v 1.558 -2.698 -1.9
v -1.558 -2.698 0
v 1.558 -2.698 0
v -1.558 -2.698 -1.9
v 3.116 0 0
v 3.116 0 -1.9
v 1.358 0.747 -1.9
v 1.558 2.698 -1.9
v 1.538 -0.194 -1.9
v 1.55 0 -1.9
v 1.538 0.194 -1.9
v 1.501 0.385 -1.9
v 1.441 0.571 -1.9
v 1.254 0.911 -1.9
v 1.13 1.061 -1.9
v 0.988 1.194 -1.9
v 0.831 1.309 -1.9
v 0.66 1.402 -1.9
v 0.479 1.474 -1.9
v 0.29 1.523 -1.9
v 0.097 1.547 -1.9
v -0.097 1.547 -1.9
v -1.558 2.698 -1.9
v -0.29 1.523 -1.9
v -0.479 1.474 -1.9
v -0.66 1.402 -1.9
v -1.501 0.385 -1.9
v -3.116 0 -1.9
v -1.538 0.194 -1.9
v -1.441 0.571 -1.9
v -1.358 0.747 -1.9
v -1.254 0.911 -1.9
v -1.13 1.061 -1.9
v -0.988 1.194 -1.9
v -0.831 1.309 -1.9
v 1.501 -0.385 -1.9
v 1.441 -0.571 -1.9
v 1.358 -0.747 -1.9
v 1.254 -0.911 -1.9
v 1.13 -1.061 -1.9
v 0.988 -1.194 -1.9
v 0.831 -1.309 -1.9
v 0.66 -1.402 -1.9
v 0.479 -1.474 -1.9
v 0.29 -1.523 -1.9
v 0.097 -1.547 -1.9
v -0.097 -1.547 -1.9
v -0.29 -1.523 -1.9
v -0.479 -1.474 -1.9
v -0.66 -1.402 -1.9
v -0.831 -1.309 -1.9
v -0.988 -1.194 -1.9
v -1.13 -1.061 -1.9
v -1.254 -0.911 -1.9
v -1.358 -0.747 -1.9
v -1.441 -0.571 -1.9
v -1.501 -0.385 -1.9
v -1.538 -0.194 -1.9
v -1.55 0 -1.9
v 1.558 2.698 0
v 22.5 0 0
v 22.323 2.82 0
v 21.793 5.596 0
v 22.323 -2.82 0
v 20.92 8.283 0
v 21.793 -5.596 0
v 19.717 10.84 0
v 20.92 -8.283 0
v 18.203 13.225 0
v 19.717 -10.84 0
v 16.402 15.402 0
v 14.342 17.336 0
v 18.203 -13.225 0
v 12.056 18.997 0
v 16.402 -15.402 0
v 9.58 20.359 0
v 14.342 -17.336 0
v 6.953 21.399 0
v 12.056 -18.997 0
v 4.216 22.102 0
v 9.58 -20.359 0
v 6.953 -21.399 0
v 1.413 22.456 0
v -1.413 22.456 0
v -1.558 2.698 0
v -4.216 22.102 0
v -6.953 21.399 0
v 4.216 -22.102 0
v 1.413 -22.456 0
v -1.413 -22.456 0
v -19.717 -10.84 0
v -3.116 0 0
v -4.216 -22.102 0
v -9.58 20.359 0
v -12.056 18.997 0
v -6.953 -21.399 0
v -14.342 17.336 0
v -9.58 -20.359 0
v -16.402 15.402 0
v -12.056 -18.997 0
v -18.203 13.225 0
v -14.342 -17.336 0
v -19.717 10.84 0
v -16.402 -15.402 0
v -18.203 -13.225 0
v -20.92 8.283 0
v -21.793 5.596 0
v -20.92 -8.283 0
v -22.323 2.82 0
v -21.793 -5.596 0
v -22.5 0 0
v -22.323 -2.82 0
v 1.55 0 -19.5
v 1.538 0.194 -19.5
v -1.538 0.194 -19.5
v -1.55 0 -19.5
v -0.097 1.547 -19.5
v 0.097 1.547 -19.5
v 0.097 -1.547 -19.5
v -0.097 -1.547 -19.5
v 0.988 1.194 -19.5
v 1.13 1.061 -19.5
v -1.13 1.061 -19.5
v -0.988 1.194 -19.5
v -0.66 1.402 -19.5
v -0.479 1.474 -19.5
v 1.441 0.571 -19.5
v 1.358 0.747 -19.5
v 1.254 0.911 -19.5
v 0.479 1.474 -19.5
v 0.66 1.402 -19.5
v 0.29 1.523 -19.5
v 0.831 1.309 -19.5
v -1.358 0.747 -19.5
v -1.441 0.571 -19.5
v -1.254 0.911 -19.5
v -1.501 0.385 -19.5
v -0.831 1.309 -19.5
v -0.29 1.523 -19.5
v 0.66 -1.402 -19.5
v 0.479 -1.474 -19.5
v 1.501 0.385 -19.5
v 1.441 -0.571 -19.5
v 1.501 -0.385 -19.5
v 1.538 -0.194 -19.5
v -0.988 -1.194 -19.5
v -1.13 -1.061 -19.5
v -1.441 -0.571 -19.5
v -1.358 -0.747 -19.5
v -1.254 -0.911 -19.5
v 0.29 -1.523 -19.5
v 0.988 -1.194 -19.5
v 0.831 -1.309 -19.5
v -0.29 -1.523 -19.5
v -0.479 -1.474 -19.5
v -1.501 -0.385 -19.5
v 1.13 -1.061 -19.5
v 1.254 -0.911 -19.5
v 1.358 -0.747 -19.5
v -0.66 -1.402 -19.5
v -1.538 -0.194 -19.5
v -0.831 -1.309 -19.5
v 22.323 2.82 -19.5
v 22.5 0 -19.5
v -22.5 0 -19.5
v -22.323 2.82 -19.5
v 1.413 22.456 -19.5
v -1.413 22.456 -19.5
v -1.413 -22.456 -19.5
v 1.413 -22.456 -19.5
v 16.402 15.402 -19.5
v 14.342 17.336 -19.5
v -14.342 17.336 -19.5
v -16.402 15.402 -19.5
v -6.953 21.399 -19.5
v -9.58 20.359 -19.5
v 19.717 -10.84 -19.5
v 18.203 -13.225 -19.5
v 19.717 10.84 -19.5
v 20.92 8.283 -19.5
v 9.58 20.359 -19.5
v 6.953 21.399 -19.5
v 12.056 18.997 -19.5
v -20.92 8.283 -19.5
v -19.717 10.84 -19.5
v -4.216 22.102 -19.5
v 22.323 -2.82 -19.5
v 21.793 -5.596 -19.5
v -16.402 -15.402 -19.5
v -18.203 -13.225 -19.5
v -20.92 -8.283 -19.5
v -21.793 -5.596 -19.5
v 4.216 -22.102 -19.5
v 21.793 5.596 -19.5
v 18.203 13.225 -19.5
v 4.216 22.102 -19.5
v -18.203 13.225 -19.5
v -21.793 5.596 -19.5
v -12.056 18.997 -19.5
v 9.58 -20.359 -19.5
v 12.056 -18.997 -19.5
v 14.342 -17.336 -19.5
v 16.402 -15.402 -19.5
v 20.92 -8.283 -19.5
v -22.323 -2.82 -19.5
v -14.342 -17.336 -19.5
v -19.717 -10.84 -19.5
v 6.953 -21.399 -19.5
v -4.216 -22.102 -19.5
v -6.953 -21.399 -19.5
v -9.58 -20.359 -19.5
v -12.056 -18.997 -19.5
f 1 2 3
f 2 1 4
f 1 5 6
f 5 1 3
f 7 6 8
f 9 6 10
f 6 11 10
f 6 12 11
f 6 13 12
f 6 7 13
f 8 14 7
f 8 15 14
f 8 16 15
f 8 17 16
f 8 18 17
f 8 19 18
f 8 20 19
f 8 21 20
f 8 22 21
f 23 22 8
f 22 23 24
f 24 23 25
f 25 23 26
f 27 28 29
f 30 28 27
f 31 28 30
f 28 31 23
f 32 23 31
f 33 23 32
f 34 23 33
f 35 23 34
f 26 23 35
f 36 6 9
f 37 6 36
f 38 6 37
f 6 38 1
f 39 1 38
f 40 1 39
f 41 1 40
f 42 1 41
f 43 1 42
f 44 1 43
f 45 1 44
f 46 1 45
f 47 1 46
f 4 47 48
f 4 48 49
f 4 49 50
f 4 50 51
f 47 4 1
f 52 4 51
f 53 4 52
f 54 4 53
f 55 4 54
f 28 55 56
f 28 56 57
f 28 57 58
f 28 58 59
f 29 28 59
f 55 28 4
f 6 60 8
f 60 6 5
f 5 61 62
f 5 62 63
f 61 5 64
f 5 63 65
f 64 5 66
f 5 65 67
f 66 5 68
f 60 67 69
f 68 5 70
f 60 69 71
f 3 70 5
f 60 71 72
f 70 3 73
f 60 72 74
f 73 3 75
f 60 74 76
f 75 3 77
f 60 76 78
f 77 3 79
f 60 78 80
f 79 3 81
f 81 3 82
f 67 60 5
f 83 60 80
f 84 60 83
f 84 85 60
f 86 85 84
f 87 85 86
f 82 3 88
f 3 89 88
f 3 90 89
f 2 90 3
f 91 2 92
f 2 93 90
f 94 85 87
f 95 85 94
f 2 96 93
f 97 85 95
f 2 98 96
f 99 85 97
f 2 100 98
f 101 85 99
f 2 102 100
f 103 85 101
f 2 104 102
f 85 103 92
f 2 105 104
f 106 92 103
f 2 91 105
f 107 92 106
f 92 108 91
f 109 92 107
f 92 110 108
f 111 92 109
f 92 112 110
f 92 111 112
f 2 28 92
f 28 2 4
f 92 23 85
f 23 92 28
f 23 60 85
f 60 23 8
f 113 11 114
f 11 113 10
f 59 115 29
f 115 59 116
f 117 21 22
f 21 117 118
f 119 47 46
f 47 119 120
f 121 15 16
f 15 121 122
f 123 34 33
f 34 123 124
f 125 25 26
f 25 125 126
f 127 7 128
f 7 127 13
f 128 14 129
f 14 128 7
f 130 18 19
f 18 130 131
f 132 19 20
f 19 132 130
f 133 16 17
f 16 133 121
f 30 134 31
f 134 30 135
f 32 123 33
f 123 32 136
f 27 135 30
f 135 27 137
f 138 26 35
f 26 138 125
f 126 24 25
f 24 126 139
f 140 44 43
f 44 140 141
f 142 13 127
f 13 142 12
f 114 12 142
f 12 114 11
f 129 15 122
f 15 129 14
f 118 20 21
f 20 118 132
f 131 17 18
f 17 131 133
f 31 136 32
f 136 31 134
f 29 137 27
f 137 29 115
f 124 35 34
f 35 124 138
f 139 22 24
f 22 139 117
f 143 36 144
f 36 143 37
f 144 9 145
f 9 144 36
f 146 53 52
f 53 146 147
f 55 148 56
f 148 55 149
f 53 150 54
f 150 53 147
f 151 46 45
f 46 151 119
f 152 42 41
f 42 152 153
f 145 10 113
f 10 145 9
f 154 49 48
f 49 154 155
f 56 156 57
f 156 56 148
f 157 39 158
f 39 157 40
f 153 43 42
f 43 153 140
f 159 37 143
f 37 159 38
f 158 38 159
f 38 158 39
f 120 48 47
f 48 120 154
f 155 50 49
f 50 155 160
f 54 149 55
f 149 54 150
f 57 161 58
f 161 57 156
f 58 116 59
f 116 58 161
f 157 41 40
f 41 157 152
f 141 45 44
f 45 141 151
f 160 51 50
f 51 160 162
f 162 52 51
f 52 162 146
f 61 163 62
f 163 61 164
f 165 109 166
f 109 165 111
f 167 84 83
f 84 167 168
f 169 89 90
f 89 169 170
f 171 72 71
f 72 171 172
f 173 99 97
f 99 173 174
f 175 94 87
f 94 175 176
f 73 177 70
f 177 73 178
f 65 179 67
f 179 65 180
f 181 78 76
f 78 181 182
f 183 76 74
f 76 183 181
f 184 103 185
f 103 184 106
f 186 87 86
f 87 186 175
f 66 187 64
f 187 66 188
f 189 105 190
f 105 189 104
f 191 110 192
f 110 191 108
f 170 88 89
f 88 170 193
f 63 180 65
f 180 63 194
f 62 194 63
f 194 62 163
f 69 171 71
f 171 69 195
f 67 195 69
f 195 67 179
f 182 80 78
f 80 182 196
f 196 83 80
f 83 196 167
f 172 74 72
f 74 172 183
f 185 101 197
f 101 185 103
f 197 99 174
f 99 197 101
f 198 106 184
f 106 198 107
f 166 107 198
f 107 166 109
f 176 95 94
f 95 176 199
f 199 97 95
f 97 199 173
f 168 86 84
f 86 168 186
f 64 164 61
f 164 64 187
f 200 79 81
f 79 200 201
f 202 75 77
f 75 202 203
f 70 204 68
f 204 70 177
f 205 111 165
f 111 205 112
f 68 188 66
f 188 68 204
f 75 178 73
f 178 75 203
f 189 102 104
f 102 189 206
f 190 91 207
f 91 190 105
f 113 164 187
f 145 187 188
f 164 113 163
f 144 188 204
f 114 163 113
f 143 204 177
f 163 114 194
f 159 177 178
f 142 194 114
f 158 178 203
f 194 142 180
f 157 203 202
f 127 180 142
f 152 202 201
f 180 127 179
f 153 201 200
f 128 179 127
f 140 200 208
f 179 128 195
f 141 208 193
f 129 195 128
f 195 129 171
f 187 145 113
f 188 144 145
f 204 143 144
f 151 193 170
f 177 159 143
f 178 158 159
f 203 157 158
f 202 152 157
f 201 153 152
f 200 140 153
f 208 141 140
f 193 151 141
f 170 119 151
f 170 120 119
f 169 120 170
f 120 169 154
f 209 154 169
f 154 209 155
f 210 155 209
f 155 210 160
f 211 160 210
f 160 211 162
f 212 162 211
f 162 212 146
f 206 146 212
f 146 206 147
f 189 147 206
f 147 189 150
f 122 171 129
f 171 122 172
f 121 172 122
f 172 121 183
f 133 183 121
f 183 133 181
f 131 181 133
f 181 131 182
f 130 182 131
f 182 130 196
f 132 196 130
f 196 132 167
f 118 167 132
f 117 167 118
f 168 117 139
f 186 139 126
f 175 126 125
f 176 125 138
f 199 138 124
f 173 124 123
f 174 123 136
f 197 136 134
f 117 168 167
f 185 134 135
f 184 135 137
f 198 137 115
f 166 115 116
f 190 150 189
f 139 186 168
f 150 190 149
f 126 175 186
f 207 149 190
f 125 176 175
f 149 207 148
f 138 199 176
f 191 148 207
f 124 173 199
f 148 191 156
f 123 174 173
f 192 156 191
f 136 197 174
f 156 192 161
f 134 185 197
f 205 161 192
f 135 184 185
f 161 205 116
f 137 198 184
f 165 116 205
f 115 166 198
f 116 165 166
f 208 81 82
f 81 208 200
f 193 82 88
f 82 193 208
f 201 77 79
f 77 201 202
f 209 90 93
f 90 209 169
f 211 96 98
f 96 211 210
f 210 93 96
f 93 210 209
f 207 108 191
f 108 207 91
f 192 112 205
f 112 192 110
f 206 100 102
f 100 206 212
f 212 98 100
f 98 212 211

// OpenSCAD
$fn = 50;

difference() {
	union() {
		translate(v = [0, 0, -19.5]) {
			cylinder(h = 19.5, r = 22.5);
		}
	}
	union() {
		translate(v = [0, 0, 0]) {
			rotate(a = [0, 0, 0]) {
				difference() {
					union() {
						translate(v = [0, 0, -1.9]) {
							linear_extrude(height = 1.9) {
								polygon(points = [[3.1158, 0.0], [1.5579000000000005, 2.698361953111554], [-1.5578999999999994, 2.6983619531115544], [-3.1158, 3.815754496783323e-16], [-1.5579000000000014, -2.6983619531115535], [1.557899999999998, -2.6983619531115552]]);
							}
						}
					}
					union();
				}
			}
		}
		#translate(v = [0, 0, -100.0]) {
			cylinder(h = 200, r = 1.55);
		}
	}
}
